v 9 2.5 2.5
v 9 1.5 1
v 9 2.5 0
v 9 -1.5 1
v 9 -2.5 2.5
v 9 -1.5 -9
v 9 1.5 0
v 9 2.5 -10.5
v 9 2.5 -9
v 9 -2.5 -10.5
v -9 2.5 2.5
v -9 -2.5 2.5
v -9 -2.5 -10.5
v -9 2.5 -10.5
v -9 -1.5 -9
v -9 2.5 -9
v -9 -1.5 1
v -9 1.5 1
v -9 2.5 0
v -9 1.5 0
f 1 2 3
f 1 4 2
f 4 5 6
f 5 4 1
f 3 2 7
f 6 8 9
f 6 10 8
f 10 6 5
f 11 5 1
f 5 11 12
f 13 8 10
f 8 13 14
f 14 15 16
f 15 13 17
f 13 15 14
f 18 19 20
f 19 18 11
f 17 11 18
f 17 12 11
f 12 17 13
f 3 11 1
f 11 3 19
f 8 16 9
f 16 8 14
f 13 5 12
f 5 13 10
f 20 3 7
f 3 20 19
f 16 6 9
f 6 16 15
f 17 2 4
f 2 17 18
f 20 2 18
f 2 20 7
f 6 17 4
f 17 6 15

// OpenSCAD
/////////////////////////////////////////////////////////////////////////////////
// This module is for generating the side holder clips for the filter holders. //
// The clips will help form a better seal around the filters.                  //
/////////////////////////////////////////////////////////////////////////////////

module filter_side_clamps(){
    difference() {
        translate([0,0,-4])
        cube([18,5,13],center=true);
        translate([0,1,-4.5])
        cube([30,4,9],center=true);
        translate([0,0,-4])
        cube([30,3,10],center=true);
    }
}

filter_side_clamps();
